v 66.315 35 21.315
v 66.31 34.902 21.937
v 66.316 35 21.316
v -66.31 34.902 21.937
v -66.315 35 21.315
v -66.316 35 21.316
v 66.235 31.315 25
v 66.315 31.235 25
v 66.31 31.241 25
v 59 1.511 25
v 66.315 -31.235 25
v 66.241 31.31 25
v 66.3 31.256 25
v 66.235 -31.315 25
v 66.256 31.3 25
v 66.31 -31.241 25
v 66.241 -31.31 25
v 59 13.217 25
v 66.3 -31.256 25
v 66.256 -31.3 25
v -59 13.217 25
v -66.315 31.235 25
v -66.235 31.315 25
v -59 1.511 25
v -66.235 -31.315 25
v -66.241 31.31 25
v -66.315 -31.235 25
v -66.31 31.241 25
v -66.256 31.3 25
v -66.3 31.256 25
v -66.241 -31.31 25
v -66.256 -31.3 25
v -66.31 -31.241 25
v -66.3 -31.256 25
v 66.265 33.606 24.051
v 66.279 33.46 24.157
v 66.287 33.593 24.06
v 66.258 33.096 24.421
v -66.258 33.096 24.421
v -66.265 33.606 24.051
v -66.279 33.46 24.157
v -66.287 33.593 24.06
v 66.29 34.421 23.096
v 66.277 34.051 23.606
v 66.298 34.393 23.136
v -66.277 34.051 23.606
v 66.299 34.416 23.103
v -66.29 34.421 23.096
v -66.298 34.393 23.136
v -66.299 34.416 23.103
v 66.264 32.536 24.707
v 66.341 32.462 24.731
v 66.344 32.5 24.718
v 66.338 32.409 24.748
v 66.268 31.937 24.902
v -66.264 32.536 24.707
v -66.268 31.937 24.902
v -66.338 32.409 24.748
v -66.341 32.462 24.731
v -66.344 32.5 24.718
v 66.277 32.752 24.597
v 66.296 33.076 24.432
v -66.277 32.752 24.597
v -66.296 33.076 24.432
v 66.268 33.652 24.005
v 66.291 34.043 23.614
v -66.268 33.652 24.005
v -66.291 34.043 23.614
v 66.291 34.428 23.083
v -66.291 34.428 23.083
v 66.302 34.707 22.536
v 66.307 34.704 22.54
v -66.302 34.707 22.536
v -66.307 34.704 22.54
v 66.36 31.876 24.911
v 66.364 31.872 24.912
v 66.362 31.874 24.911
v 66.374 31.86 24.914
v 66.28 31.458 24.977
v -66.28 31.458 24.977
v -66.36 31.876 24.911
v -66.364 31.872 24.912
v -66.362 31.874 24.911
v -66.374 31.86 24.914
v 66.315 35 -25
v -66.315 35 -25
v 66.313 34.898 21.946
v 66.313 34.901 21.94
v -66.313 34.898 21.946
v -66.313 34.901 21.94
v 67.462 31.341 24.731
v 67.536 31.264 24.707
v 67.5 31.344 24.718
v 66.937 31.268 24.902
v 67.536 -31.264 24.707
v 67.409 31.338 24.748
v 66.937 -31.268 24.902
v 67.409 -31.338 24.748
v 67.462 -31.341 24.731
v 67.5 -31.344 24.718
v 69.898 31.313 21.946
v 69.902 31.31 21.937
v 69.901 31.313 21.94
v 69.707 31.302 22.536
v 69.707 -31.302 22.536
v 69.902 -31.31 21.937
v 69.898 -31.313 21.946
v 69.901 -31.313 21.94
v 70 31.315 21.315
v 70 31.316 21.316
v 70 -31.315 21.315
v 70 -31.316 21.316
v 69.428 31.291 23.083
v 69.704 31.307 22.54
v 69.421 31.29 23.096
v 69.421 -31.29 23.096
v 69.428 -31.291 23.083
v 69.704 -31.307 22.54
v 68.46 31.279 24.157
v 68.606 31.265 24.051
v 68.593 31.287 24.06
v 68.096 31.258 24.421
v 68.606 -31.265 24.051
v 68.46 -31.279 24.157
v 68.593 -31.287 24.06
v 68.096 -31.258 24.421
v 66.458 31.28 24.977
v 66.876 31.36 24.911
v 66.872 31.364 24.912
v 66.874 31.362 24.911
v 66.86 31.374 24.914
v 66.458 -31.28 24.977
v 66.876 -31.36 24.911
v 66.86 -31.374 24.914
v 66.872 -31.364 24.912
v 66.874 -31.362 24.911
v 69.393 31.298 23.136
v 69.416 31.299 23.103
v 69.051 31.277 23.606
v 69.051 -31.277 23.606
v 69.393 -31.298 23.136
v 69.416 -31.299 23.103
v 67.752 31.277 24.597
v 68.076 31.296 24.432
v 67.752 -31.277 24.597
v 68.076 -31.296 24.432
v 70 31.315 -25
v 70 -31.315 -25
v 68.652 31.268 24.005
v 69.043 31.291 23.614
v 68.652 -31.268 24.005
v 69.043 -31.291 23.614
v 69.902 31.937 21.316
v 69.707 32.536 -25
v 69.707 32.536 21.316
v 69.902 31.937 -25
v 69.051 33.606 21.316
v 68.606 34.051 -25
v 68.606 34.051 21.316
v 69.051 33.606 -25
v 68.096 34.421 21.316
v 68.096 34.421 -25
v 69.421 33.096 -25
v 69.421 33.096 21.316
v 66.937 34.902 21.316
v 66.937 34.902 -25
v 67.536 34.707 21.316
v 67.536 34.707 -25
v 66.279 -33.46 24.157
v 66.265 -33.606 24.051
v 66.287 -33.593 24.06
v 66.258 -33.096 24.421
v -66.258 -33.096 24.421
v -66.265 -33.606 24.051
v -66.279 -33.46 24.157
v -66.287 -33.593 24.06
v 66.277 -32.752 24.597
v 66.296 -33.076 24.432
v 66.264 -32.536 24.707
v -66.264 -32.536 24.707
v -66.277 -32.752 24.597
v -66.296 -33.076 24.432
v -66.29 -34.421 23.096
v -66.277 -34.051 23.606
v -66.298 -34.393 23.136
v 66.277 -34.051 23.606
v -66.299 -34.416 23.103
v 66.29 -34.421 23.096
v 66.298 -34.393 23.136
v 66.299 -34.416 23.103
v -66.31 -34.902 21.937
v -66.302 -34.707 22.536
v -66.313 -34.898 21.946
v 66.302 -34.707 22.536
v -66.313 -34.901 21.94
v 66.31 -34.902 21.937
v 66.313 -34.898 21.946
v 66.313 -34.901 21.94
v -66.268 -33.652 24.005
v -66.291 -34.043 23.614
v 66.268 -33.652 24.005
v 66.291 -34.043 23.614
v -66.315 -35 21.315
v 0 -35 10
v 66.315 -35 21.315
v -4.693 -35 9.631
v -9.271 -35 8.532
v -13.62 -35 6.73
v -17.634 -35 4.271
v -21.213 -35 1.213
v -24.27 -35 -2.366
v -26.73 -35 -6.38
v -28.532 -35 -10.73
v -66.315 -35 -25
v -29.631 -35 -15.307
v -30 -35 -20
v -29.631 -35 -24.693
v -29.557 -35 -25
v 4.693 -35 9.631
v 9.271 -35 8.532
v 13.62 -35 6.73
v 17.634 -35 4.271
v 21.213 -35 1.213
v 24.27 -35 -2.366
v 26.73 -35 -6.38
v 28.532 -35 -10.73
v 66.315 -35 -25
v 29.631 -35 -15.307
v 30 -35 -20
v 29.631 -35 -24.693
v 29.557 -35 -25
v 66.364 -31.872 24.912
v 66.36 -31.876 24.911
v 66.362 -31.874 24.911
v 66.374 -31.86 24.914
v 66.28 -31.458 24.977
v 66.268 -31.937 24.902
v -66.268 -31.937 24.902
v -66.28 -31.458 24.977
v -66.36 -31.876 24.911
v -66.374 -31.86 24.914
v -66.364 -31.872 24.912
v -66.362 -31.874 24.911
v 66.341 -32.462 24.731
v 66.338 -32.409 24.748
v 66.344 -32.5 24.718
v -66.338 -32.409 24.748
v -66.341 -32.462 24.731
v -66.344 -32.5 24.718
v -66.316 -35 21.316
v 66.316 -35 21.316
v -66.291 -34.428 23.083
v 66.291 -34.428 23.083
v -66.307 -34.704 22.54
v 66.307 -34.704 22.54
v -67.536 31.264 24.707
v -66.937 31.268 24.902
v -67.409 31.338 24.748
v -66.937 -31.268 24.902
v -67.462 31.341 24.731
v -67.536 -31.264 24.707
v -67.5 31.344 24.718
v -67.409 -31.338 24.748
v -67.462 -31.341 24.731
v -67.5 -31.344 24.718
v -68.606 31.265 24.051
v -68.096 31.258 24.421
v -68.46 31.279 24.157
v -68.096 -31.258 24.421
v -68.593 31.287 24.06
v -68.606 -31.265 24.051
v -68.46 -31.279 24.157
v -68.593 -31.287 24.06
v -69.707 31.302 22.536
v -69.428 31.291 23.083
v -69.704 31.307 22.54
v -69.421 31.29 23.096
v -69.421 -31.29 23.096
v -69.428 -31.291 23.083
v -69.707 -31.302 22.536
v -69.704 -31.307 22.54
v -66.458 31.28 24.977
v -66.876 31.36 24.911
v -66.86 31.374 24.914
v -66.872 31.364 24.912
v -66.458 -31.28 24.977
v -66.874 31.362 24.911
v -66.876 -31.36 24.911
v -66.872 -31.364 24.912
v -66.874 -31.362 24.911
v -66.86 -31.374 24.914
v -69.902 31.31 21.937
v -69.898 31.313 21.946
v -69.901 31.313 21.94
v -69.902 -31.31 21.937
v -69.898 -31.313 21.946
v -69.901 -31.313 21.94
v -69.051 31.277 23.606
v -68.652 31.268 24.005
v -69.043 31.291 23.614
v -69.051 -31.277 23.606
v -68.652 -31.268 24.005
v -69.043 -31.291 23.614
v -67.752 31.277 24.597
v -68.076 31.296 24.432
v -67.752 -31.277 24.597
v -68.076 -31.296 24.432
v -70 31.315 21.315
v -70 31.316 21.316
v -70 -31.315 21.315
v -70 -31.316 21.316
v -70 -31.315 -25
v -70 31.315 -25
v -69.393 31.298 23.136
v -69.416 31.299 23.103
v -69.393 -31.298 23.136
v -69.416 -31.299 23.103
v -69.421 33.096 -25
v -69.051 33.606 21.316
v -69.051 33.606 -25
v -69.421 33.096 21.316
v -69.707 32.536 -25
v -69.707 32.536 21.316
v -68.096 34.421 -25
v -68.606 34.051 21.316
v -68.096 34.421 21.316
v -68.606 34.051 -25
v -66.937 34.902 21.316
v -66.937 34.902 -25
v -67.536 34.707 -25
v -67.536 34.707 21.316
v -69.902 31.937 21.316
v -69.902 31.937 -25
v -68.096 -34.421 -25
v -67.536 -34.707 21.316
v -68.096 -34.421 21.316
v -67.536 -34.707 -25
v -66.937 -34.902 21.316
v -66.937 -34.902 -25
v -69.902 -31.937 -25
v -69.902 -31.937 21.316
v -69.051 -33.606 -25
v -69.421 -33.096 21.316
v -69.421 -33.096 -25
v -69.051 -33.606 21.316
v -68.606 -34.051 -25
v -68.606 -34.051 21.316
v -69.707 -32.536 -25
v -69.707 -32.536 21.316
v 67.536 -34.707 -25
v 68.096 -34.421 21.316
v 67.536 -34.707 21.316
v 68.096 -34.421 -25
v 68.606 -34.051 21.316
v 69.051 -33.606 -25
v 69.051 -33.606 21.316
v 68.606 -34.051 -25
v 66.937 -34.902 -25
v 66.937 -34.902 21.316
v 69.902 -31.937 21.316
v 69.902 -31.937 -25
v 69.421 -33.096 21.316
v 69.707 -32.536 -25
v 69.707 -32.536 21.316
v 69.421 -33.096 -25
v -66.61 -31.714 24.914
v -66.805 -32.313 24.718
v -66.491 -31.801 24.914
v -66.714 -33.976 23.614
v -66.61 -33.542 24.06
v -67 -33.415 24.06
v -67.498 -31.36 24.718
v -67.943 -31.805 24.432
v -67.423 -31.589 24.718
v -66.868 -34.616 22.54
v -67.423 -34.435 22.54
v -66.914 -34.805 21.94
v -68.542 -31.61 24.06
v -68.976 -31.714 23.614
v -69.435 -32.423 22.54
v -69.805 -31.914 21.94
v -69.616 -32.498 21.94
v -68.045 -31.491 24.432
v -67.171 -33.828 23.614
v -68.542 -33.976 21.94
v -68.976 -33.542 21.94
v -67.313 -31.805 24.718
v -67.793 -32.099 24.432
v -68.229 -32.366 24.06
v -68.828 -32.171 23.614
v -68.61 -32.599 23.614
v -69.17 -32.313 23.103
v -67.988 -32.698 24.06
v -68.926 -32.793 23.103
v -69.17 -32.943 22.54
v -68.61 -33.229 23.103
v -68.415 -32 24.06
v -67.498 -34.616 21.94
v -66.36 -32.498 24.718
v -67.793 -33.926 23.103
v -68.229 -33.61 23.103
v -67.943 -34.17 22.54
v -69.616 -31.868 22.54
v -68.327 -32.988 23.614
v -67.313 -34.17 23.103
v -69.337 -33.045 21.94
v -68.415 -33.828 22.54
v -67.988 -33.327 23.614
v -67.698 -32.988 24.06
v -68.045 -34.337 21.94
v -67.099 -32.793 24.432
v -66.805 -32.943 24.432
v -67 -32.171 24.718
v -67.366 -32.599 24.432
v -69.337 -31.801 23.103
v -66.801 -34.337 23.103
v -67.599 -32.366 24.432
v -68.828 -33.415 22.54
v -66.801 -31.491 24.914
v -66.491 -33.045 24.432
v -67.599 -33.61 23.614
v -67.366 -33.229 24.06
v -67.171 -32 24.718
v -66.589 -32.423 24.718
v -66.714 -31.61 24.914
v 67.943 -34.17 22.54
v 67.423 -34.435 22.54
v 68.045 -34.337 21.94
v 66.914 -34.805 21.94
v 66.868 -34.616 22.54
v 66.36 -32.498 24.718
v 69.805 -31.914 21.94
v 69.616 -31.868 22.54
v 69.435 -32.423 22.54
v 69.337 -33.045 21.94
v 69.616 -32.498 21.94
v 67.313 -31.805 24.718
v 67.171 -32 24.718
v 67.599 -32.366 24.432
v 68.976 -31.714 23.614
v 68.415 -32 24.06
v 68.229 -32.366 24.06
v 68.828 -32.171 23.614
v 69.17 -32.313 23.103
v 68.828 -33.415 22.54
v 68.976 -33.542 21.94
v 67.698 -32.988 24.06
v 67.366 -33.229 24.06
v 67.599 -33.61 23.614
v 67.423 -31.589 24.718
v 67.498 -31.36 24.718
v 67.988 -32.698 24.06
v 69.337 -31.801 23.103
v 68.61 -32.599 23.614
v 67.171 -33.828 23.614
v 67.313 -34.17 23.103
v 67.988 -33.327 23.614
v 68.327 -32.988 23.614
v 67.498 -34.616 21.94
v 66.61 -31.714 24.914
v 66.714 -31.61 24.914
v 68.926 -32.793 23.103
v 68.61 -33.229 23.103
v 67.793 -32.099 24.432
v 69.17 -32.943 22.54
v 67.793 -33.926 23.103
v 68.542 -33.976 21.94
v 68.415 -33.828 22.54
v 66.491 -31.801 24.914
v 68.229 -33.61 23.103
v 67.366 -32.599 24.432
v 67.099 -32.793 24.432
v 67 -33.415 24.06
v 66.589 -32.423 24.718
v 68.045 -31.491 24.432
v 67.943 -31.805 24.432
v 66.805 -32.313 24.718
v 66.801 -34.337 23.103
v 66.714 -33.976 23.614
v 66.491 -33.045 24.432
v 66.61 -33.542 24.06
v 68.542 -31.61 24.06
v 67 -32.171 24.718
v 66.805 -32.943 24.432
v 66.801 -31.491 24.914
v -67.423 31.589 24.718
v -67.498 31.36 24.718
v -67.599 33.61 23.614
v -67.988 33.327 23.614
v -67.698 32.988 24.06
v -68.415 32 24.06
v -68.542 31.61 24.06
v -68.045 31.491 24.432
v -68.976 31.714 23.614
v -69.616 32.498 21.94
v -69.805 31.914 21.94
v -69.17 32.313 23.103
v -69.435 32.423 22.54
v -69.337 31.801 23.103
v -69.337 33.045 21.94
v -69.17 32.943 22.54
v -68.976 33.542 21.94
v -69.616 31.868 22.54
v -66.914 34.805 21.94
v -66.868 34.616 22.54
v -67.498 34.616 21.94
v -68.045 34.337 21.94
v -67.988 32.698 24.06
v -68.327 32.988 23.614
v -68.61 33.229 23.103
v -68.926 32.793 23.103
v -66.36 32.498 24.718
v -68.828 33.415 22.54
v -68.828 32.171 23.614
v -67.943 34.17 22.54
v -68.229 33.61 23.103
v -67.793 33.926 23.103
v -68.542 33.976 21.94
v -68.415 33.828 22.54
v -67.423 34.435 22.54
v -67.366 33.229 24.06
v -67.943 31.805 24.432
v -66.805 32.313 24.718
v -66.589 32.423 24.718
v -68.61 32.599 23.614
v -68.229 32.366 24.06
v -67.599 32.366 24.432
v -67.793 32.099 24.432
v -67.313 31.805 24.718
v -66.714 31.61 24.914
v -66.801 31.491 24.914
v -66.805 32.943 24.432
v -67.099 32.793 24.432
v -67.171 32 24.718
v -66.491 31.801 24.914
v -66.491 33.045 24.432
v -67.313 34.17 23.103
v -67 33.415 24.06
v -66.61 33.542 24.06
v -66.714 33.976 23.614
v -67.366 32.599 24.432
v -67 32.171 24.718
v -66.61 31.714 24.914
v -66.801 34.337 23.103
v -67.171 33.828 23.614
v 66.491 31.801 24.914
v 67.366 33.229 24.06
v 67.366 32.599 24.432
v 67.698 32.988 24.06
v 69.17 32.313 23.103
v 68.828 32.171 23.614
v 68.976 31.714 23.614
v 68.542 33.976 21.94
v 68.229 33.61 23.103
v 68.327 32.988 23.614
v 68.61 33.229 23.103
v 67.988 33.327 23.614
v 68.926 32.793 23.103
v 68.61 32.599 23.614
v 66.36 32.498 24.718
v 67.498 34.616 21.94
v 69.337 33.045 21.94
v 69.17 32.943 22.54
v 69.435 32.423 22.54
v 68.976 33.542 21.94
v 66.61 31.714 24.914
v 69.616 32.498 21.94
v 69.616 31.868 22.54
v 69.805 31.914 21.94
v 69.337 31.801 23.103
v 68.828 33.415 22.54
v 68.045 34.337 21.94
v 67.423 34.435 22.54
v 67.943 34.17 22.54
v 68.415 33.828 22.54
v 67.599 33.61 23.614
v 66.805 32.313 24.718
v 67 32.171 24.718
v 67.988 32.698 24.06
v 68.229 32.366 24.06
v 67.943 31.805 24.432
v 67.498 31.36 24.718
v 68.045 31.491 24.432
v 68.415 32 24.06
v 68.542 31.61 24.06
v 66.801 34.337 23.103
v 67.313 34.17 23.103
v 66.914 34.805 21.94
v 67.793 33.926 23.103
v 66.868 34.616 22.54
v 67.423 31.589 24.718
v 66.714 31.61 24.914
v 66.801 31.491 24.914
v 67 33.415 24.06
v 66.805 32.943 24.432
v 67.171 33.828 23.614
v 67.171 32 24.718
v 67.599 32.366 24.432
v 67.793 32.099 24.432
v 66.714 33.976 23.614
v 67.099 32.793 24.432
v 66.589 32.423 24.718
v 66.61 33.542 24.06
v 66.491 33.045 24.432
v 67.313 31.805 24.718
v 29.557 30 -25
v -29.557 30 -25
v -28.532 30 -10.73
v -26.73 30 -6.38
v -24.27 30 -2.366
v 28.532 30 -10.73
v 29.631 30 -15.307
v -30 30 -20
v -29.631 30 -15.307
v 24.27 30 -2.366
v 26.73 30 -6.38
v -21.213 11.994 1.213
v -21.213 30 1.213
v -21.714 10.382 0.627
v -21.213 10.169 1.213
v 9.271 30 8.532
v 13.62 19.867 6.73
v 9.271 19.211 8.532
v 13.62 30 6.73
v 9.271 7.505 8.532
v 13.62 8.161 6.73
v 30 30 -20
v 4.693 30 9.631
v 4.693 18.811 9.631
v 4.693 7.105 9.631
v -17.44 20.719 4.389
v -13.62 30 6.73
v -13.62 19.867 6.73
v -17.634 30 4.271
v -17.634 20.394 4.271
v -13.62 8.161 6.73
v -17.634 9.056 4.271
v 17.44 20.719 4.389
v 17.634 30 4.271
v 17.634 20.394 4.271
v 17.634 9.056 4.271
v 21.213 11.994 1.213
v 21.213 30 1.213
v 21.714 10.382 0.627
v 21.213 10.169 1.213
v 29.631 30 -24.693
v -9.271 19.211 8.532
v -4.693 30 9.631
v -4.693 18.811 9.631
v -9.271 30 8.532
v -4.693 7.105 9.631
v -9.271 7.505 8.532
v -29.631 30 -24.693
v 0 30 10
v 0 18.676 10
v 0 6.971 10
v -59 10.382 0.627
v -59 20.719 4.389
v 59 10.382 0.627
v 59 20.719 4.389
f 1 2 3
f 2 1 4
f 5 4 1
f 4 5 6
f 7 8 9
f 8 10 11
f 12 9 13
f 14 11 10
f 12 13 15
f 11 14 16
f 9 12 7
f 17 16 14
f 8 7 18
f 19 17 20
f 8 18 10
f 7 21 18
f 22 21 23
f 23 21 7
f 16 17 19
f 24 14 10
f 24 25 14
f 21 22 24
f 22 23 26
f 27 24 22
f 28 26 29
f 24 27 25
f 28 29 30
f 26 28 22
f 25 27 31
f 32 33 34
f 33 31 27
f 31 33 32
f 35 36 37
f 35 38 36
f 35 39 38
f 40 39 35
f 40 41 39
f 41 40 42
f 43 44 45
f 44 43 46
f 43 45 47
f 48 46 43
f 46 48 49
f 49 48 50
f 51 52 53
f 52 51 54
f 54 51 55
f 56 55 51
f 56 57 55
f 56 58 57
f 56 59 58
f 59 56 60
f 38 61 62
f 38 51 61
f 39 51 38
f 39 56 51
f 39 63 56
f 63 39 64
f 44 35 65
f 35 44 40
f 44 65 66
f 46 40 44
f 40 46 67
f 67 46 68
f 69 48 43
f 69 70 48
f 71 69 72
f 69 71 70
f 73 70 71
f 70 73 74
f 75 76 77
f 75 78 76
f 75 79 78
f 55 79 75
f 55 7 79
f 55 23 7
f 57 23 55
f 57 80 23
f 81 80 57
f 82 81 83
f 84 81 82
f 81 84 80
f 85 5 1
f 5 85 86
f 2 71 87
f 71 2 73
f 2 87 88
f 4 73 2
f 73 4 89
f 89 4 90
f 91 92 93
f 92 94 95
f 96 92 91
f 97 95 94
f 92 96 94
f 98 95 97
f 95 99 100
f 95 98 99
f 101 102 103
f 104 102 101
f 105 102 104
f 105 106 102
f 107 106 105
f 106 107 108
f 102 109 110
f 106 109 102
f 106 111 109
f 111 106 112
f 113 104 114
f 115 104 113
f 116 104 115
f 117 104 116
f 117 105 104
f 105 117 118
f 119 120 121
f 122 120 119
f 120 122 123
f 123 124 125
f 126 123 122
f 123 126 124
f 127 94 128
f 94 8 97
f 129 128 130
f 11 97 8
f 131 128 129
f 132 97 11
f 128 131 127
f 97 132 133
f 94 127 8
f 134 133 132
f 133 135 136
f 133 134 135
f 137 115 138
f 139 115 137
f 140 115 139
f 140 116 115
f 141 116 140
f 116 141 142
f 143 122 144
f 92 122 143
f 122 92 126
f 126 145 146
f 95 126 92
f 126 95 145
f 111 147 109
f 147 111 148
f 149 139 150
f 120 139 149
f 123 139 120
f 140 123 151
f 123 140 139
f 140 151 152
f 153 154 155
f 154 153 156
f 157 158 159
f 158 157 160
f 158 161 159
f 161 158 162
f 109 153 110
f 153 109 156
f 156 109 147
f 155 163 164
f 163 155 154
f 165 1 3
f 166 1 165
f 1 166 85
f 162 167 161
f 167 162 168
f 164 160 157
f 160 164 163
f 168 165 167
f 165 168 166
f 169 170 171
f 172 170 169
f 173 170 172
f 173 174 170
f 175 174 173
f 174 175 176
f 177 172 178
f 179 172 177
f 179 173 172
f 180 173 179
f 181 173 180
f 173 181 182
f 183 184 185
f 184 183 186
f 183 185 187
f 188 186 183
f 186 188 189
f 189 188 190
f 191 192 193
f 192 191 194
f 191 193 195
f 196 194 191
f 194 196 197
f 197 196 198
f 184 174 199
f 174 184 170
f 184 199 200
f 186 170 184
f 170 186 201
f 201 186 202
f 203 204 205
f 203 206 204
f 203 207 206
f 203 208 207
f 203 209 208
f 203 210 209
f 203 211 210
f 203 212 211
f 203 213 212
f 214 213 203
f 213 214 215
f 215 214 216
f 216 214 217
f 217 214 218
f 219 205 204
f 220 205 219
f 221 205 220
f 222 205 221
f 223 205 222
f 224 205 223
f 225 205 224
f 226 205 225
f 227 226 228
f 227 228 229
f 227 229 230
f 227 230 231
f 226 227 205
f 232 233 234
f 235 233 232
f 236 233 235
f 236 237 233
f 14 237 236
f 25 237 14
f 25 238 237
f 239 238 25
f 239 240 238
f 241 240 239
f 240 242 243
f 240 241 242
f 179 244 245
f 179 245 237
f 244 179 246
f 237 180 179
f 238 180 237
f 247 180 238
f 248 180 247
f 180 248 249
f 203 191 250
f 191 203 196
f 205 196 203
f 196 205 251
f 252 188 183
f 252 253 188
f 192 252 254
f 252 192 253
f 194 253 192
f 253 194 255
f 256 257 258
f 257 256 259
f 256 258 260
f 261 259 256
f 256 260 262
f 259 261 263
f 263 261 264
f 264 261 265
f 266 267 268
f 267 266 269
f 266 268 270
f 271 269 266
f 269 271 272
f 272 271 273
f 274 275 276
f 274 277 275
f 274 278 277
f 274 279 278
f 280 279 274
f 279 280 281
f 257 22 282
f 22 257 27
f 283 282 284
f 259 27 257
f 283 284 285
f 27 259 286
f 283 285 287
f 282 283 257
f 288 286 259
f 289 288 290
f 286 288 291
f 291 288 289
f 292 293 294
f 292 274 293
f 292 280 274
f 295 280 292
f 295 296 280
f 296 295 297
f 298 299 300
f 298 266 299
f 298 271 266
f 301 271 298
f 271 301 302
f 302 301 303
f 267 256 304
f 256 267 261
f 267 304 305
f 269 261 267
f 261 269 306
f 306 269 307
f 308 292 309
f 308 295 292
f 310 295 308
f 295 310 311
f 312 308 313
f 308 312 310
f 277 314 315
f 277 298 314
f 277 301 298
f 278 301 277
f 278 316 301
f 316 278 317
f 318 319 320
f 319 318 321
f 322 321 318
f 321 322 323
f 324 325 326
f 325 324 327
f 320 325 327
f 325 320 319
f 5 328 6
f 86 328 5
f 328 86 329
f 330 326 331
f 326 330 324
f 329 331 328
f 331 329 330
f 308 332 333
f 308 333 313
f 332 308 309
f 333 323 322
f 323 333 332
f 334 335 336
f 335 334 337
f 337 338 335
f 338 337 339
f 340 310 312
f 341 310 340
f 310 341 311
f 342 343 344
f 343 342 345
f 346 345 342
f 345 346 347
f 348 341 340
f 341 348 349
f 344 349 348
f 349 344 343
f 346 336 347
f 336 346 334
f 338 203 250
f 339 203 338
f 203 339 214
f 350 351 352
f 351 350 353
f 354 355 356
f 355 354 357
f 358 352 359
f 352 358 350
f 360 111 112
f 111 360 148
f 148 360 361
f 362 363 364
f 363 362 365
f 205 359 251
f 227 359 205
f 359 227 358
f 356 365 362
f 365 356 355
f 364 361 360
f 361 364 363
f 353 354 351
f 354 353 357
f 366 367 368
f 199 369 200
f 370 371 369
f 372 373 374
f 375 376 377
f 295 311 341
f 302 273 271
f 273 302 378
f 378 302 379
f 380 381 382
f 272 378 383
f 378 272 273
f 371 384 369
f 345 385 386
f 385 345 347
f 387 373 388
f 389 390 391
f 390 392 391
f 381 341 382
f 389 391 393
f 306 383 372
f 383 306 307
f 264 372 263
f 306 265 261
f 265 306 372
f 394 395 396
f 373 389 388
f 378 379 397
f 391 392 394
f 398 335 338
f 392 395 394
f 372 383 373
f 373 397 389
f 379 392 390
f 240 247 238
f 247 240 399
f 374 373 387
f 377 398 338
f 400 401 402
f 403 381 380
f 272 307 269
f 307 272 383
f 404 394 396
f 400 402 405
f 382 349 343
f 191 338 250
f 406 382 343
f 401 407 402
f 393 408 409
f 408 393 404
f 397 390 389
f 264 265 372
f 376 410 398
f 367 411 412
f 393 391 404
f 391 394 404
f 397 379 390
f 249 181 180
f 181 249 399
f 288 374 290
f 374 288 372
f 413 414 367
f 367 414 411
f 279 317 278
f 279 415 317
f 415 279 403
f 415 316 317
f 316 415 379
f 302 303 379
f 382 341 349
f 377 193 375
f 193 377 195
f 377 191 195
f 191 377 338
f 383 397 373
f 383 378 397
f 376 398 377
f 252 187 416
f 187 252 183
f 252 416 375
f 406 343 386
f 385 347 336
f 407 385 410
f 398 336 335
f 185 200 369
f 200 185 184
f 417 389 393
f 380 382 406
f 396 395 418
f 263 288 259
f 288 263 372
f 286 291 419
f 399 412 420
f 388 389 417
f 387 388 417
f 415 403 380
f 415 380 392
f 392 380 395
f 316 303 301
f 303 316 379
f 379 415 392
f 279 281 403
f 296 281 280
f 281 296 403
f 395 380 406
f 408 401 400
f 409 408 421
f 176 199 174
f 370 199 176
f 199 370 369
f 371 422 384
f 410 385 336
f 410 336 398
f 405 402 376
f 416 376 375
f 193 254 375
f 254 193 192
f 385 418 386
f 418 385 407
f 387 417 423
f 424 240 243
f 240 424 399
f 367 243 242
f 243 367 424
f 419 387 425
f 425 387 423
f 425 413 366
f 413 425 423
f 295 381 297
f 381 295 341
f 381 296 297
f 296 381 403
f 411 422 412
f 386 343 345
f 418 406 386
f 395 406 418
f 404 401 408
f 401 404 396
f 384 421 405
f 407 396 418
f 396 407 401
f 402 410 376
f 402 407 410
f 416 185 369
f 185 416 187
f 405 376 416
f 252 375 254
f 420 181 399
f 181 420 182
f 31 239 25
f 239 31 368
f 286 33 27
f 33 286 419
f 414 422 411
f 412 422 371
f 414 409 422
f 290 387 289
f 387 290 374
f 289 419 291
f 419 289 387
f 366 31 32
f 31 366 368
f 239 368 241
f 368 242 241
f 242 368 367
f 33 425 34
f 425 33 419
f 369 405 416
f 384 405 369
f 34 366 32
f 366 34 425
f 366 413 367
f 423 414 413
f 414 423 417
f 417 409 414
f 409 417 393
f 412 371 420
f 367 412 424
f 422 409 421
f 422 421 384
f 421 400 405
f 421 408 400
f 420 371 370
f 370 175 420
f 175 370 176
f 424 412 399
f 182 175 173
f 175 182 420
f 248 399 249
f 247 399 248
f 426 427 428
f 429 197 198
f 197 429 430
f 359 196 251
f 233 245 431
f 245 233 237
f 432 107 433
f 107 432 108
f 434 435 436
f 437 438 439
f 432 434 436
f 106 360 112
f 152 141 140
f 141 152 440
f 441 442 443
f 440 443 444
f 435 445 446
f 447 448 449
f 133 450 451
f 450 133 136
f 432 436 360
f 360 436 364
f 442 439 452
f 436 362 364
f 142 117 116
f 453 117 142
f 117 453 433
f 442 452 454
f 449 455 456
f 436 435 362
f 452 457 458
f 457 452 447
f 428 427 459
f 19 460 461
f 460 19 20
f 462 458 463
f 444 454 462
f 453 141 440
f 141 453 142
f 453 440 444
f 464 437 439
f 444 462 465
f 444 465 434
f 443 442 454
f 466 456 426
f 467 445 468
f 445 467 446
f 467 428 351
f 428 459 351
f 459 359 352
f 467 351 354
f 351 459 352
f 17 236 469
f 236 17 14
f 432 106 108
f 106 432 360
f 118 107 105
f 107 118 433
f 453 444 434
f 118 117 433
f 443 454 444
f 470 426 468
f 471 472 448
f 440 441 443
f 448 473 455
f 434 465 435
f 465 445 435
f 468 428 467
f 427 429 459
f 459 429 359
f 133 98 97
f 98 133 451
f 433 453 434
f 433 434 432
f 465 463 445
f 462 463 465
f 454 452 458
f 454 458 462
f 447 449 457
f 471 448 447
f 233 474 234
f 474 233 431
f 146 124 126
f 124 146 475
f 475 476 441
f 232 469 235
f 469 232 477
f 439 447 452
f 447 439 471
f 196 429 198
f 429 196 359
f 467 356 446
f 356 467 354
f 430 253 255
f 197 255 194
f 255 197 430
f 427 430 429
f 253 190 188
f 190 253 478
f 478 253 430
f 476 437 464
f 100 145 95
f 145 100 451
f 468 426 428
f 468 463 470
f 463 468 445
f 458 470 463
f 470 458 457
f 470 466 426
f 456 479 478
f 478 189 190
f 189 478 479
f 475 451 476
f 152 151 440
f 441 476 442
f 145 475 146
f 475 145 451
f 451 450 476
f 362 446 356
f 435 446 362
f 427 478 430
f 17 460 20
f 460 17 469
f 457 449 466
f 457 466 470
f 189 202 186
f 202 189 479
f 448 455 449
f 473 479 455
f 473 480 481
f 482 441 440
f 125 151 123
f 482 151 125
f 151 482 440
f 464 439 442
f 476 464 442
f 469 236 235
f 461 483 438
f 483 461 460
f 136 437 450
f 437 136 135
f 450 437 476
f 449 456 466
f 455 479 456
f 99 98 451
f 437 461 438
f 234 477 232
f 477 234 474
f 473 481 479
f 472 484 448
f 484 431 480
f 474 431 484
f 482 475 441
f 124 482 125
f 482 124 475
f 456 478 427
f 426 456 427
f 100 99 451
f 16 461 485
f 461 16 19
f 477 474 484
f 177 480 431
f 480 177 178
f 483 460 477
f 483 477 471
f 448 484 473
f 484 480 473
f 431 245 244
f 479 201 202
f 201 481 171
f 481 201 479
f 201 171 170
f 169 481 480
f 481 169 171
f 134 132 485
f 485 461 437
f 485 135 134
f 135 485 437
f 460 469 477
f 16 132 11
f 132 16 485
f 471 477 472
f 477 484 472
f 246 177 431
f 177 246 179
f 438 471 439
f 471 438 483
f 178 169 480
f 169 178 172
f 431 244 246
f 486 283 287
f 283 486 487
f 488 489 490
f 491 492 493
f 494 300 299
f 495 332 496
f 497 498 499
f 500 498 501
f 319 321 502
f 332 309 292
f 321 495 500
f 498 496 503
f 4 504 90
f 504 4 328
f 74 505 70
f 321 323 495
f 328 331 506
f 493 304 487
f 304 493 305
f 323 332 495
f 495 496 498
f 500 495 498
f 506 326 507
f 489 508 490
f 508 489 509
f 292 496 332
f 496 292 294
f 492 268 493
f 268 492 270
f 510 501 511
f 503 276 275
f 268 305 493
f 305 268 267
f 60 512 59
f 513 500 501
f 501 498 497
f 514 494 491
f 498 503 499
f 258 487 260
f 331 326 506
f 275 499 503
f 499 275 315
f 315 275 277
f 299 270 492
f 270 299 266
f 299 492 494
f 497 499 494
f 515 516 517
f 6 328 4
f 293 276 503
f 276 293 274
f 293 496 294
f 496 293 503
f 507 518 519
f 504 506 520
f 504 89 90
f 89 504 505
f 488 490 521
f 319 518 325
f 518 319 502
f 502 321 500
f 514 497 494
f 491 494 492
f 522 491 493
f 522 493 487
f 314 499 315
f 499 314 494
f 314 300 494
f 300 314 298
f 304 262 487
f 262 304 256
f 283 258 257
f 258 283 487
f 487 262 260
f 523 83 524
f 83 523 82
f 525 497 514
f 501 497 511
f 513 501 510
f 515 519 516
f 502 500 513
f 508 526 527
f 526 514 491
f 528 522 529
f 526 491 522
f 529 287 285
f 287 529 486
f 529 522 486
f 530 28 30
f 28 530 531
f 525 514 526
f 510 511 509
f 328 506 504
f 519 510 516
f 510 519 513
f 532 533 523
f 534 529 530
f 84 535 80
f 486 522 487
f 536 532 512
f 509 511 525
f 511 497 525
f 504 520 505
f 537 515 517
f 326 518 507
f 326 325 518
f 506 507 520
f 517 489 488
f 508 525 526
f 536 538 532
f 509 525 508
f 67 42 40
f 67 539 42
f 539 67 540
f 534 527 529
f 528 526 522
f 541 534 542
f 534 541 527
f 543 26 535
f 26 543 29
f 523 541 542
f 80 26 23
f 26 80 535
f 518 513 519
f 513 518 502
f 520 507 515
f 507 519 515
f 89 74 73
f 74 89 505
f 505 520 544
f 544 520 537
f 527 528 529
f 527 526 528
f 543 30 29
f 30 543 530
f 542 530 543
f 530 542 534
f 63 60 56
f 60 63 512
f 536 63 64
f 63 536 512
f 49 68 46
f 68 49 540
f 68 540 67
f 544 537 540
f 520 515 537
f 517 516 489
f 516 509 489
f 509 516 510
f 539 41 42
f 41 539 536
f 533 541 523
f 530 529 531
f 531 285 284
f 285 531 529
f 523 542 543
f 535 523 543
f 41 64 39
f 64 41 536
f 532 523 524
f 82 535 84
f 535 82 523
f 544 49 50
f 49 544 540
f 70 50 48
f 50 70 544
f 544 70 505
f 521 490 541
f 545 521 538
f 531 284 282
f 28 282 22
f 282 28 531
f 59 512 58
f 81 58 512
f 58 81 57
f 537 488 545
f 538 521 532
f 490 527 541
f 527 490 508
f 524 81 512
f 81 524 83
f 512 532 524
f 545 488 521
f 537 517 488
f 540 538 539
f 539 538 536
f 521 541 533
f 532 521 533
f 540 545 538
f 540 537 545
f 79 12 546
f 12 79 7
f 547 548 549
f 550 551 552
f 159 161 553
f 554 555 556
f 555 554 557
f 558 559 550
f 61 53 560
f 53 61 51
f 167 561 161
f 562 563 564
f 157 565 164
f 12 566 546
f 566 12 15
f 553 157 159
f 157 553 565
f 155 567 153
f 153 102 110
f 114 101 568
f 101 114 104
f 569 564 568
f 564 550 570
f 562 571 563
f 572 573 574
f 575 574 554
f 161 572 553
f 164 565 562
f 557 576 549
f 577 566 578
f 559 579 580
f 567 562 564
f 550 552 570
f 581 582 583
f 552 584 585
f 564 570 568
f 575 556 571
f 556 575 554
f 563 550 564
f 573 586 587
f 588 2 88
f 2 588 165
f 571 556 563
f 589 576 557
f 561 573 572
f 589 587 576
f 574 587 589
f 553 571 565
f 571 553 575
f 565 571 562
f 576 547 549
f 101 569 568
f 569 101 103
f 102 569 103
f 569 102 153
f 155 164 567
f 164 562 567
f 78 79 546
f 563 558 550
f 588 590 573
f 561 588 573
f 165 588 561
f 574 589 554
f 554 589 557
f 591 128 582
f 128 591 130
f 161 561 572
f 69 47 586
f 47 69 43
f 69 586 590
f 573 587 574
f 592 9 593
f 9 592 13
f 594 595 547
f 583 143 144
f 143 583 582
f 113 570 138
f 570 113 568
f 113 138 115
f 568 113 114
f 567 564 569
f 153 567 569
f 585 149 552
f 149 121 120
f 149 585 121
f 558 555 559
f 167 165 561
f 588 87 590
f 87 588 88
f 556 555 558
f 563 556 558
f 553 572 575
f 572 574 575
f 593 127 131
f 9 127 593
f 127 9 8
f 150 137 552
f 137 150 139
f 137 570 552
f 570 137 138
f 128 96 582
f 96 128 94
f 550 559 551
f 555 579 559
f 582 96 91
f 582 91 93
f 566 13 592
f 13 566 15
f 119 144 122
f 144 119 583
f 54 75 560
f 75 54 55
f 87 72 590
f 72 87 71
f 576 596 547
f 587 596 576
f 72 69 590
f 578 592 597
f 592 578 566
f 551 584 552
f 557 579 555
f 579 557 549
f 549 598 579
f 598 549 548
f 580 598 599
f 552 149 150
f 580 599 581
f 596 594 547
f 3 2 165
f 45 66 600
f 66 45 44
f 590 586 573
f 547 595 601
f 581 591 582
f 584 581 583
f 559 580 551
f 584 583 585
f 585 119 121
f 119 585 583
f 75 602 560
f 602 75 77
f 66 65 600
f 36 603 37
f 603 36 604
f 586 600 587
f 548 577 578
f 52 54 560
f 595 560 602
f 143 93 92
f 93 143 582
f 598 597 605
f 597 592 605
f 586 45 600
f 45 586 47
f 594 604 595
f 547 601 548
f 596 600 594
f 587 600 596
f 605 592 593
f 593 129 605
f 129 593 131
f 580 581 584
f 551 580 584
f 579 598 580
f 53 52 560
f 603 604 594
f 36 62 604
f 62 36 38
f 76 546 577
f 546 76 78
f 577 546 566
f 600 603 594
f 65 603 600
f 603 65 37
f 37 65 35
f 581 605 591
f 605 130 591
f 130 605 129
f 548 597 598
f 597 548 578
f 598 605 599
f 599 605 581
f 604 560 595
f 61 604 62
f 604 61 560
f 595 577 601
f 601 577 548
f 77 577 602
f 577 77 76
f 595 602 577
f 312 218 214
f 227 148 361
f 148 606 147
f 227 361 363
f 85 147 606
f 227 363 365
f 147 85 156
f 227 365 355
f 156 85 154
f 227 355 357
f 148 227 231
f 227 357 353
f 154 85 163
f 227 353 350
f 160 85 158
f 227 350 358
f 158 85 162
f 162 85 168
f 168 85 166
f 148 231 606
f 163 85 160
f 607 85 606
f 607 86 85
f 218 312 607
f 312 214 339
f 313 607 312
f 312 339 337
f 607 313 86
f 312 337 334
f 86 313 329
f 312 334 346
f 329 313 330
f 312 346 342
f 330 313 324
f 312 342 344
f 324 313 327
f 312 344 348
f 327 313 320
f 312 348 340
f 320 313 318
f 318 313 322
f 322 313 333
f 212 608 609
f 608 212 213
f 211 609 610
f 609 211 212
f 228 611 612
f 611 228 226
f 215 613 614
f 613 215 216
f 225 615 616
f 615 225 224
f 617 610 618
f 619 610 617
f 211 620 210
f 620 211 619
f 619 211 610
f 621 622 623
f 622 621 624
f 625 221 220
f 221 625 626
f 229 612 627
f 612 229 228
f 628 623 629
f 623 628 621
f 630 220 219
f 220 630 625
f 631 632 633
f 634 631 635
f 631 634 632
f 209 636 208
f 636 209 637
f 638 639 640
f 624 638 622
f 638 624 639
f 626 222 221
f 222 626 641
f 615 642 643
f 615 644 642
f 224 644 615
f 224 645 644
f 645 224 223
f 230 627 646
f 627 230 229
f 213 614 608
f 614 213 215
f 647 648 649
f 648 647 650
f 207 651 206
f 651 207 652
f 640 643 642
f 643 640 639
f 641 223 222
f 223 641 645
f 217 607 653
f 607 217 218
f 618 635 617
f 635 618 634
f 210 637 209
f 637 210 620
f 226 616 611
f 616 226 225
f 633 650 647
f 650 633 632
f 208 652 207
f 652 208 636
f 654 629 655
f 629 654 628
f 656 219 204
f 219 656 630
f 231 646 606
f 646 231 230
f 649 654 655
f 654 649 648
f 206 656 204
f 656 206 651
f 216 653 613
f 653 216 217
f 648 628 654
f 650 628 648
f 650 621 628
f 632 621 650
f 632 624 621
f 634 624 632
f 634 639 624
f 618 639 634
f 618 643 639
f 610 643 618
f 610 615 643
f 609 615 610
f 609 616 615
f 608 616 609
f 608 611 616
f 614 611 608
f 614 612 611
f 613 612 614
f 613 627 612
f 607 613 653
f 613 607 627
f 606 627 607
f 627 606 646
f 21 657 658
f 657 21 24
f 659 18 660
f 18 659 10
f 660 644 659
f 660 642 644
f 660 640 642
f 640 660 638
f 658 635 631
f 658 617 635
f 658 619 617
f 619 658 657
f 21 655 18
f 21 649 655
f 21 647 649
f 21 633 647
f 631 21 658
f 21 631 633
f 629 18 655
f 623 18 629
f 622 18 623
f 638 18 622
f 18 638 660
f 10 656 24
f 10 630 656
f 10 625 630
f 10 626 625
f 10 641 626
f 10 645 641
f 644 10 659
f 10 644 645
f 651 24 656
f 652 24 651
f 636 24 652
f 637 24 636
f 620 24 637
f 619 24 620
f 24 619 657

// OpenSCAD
include <BOSL/constants.scad>
use <BOSL/shapes.scad>
use <BOSL/transforms.scad>

$fn = 40;

difference() {
cuboid([140,70,50], fillet=4, edges=EDGES_ALL-EDGES_BOTTOM);
move(x=0,y=-10,z=-20) ycyl(l=80, r=30);
move(x=0,y=7,z=26) xrot(20) cuboid([118,11,50], center=true);
}
